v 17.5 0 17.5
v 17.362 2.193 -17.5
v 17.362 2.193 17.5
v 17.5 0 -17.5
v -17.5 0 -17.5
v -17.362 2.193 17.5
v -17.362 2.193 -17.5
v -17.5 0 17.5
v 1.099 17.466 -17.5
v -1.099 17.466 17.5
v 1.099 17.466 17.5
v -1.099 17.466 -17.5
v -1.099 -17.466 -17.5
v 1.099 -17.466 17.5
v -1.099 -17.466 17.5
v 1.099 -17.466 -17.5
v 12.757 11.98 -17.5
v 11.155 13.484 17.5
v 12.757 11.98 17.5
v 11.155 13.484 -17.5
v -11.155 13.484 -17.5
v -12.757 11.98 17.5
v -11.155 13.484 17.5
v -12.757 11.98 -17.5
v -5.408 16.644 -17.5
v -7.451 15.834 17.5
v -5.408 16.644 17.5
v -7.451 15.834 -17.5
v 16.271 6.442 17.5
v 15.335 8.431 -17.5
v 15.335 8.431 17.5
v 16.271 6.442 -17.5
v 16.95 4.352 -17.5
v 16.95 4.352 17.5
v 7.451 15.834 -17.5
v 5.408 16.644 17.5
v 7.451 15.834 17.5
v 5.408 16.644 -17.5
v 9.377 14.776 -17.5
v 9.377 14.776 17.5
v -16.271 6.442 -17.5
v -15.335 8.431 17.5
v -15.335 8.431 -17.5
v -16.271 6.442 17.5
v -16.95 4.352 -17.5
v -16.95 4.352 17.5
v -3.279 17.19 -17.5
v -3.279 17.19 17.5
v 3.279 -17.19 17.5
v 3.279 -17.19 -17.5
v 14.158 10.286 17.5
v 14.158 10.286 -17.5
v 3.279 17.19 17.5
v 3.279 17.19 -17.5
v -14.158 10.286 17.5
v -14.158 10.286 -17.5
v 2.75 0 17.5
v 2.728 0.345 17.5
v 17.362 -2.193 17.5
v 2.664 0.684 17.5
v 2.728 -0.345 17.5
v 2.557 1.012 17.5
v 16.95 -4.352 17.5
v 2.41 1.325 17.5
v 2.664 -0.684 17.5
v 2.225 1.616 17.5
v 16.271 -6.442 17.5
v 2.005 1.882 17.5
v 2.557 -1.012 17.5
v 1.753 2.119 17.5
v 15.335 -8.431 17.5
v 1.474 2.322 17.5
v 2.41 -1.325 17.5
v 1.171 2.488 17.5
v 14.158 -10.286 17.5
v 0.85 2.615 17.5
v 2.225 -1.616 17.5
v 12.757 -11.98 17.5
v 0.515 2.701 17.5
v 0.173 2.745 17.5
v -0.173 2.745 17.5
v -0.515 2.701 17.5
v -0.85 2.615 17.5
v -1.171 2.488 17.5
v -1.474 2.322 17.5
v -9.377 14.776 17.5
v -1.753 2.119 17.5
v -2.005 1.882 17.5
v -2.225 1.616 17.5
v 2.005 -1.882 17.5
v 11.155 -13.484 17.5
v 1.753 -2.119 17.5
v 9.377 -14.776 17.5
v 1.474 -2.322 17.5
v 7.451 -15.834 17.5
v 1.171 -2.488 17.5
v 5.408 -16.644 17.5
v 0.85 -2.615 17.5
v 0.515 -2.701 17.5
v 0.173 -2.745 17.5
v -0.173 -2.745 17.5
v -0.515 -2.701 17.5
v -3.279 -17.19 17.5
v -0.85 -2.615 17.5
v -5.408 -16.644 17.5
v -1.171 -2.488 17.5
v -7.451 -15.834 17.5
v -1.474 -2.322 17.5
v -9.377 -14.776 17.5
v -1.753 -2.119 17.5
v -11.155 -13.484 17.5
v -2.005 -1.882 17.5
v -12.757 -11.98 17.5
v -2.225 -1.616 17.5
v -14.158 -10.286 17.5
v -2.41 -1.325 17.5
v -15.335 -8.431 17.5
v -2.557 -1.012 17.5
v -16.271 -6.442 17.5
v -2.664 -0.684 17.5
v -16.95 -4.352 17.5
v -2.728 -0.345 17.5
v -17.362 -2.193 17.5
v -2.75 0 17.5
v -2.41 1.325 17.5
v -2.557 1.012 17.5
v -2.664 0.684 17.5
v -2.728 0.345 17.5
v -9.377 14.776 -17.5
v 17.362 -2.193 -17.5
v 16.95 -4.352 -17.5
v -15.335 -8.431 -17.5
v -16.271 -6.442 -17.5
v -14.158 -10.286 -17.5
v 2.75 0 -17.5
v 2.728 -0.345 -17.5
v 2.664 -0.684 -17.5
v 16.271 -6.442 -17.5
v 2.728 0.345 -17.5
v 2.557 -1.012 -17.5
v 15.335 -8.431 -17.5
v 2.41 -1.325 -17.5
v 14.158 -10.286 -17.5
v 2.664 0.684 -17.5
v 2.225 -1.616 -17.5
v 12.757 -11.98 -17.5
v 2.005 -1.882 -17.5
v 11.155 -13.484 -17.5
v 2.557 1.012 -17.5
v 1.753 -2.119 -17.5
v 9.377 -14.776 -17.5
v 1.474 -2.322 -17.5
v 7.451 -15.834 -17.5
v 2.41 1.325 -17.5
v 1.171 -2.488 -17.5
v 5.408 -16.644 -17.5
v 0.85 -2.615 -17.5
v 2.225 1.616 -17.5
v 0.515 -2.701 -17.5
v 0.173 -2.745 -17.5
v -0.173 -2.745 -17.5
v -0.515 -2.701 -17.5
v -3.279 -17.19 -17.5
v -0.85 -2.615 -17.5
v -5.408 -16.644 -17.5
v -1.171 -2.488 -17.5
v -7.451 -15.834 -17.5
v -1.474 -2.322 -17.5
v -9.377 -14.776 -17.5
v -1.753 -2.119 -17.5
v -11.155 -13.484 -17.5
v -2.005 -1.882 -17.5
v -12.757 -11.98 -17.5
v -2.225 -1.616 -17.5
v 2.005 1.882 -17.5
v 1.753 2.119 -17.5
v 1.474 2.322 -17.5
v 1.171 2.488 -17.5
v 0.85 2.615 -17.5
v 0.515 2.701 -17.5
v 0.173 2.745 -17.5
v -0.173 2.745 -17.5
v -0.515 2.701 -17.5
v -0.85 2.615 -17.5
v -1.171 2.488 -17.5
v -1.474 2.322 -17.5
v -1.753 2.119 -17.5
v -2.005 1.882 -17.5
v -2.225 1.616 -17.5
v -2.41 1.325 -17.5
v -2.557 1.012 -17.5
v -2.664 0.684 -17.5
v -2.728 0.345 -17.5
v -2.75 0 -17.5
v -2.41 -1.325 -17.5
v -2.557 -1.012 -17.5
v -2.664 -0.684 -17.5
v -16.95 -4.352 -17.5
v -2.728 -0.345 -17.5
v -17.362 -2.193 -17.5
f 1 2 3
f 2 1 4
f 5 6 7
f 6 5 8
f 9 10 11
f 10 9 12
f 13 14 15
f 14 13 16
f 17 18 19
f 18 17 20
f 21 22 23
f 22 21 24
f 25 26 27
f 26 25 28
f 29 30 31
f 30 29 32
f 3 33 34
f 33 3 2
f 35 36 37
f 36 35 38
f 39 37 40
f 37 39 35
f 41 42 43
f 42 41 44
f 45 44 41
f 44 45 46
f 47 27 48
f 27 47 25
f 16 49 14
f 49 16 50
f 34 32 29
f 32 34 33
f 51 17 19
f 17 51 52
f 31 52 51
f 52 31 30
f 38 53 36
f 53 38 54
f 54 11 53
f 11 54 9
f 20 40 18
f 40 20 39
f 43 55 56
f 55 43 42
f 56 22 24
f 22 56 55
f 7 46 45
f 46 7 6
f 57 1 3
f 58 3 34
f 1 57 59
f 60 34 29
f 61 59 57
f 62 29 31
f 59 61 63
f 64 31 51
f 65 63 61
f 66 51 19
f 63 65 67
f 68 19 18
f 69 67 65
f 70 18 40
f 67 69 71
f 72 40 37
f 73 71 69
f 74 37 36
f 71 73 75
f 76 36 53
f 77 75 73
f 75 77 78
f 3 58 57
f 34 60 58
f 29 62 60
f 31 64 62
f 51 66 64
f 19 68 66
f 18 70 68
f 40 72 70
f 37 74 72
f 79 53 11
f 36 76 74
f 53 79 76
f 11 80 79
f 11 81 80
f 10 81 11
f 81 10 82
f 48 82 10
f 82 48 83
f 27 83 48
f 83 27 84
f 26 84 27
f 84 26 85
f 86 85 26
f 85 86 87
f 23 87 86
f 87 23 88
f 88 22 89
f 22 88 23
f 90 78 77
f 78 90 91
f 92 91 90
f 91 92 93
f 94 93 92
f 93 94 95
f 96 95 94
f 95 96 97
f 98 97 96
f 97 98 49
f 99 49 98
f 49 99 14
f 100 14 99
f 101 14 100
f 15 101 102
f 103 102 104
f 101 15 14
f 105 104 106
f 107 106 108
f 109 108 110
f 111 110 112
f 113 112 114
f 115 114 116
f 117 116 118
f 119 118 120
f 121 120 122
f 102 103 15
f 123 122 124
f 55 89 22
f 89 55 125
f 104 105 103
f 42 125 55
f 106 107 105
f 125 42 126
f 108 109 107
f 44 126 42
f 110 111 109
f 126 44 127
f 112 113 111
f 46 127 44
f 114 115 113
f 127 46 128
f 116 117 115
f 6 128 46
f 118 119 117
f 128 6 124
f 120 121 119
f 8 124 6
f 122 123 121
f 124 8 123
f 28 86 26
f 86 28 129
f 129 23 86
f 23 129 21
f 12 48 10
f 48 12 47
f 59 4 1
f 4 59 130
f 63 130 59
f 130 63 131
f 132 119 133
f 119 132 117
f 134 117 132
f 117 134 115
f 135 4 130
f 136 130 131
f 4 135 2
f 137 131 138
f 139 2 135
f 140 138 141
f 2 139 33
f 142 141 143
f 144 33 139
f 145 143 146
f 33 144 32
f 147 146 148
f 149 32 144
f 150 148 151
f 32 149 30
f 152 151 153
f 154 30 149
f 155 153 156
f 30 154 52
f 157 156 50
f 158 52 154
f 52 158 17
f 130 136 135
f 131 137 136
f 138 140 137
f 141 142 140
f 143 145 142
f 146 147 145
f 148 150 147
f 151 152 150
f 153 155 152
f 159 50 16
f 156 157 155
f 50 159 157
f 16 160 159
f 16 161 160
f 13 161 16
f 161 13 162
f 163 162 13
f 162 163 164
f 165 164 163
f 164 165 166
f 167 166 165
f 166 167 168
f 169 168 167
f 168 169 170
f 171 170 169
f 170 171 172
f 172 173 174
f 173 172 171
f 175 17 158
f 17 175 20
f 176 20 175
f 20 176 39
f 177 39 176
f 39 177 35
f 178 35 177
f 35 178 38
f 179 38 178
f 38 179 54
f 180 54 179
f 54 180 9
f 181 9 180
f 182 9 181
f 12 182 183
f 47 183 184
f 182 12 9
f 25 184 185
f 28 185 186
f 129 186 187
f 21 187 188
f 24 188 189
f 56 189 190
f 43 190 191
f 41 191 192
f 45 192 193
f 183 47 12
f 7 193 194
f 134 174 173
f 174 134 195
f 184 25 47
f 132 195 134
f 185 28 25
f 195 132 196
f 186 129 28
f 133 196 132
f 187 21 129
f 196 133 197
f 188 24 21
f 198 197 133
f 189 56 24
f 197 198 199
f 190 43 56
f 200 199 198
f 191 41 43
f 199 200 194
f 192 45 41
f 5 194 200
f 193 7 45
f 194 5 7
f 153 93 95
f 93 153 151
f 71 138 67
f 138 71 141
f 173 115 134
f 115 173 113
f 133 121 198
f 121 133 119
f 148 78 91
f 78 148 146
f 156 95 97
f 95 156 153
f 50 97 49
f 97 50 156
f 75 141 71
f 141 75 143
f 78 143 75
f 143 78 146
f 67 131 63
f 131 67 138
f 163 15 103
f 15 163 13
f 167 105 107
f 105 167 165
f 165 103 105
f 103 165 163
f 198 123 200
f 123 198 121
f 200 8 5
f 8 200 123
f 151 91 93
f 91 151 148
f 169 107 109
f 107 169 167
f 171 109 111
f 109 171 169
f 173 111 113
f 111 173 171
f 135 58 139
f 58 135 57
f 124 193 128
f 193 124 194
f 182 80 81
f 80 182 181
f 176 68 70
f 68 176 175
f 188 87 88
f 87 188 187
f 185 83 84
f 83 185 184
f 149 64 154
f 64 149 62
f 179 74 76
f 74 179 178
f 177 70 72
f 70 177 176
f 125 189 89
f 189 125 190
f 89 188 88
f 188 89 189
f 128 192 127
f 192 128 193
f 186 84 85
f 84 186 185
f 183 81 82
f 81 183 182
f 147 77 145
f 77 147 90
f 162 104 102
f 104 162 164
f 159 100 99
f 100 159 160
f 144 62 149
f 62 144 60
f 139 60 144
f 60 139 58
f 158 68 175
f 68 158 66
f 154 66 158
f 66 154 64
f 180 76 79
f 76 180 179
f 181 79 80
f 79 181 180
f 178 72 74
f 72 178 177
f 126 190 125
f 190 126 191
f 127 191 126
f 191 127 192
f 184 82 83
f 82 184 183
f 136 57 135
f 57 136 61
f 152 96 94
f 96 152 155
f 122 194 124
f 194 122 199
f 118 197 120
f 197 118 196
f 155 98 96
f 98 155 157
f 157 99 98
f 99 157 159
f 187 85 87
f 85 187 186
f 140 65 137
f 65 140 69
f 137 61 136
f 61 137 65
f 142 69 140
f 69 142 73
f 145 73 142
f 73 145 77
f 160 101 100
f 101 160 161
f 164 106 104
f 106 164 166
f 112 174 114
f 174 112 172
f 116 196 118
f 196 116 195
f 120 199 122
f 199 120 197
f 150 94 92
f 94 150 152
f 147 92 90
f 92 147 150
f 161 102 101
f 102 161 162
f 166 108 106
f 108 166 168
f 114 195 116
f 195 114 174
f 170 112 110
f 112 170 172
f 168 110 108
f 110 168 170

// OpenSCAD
$fn = 50;


difference() {
	union() {
		translate(v = [0, 0, -17.5000000000]) {
			cylinder(h = 35, r = 17.5000000000);
		}
	}
	union() {
		translate(v = [0, 0, -100.0000000000]) {
			cylinder(h = 200, r = 2.7500000000);
		}
	}
}
